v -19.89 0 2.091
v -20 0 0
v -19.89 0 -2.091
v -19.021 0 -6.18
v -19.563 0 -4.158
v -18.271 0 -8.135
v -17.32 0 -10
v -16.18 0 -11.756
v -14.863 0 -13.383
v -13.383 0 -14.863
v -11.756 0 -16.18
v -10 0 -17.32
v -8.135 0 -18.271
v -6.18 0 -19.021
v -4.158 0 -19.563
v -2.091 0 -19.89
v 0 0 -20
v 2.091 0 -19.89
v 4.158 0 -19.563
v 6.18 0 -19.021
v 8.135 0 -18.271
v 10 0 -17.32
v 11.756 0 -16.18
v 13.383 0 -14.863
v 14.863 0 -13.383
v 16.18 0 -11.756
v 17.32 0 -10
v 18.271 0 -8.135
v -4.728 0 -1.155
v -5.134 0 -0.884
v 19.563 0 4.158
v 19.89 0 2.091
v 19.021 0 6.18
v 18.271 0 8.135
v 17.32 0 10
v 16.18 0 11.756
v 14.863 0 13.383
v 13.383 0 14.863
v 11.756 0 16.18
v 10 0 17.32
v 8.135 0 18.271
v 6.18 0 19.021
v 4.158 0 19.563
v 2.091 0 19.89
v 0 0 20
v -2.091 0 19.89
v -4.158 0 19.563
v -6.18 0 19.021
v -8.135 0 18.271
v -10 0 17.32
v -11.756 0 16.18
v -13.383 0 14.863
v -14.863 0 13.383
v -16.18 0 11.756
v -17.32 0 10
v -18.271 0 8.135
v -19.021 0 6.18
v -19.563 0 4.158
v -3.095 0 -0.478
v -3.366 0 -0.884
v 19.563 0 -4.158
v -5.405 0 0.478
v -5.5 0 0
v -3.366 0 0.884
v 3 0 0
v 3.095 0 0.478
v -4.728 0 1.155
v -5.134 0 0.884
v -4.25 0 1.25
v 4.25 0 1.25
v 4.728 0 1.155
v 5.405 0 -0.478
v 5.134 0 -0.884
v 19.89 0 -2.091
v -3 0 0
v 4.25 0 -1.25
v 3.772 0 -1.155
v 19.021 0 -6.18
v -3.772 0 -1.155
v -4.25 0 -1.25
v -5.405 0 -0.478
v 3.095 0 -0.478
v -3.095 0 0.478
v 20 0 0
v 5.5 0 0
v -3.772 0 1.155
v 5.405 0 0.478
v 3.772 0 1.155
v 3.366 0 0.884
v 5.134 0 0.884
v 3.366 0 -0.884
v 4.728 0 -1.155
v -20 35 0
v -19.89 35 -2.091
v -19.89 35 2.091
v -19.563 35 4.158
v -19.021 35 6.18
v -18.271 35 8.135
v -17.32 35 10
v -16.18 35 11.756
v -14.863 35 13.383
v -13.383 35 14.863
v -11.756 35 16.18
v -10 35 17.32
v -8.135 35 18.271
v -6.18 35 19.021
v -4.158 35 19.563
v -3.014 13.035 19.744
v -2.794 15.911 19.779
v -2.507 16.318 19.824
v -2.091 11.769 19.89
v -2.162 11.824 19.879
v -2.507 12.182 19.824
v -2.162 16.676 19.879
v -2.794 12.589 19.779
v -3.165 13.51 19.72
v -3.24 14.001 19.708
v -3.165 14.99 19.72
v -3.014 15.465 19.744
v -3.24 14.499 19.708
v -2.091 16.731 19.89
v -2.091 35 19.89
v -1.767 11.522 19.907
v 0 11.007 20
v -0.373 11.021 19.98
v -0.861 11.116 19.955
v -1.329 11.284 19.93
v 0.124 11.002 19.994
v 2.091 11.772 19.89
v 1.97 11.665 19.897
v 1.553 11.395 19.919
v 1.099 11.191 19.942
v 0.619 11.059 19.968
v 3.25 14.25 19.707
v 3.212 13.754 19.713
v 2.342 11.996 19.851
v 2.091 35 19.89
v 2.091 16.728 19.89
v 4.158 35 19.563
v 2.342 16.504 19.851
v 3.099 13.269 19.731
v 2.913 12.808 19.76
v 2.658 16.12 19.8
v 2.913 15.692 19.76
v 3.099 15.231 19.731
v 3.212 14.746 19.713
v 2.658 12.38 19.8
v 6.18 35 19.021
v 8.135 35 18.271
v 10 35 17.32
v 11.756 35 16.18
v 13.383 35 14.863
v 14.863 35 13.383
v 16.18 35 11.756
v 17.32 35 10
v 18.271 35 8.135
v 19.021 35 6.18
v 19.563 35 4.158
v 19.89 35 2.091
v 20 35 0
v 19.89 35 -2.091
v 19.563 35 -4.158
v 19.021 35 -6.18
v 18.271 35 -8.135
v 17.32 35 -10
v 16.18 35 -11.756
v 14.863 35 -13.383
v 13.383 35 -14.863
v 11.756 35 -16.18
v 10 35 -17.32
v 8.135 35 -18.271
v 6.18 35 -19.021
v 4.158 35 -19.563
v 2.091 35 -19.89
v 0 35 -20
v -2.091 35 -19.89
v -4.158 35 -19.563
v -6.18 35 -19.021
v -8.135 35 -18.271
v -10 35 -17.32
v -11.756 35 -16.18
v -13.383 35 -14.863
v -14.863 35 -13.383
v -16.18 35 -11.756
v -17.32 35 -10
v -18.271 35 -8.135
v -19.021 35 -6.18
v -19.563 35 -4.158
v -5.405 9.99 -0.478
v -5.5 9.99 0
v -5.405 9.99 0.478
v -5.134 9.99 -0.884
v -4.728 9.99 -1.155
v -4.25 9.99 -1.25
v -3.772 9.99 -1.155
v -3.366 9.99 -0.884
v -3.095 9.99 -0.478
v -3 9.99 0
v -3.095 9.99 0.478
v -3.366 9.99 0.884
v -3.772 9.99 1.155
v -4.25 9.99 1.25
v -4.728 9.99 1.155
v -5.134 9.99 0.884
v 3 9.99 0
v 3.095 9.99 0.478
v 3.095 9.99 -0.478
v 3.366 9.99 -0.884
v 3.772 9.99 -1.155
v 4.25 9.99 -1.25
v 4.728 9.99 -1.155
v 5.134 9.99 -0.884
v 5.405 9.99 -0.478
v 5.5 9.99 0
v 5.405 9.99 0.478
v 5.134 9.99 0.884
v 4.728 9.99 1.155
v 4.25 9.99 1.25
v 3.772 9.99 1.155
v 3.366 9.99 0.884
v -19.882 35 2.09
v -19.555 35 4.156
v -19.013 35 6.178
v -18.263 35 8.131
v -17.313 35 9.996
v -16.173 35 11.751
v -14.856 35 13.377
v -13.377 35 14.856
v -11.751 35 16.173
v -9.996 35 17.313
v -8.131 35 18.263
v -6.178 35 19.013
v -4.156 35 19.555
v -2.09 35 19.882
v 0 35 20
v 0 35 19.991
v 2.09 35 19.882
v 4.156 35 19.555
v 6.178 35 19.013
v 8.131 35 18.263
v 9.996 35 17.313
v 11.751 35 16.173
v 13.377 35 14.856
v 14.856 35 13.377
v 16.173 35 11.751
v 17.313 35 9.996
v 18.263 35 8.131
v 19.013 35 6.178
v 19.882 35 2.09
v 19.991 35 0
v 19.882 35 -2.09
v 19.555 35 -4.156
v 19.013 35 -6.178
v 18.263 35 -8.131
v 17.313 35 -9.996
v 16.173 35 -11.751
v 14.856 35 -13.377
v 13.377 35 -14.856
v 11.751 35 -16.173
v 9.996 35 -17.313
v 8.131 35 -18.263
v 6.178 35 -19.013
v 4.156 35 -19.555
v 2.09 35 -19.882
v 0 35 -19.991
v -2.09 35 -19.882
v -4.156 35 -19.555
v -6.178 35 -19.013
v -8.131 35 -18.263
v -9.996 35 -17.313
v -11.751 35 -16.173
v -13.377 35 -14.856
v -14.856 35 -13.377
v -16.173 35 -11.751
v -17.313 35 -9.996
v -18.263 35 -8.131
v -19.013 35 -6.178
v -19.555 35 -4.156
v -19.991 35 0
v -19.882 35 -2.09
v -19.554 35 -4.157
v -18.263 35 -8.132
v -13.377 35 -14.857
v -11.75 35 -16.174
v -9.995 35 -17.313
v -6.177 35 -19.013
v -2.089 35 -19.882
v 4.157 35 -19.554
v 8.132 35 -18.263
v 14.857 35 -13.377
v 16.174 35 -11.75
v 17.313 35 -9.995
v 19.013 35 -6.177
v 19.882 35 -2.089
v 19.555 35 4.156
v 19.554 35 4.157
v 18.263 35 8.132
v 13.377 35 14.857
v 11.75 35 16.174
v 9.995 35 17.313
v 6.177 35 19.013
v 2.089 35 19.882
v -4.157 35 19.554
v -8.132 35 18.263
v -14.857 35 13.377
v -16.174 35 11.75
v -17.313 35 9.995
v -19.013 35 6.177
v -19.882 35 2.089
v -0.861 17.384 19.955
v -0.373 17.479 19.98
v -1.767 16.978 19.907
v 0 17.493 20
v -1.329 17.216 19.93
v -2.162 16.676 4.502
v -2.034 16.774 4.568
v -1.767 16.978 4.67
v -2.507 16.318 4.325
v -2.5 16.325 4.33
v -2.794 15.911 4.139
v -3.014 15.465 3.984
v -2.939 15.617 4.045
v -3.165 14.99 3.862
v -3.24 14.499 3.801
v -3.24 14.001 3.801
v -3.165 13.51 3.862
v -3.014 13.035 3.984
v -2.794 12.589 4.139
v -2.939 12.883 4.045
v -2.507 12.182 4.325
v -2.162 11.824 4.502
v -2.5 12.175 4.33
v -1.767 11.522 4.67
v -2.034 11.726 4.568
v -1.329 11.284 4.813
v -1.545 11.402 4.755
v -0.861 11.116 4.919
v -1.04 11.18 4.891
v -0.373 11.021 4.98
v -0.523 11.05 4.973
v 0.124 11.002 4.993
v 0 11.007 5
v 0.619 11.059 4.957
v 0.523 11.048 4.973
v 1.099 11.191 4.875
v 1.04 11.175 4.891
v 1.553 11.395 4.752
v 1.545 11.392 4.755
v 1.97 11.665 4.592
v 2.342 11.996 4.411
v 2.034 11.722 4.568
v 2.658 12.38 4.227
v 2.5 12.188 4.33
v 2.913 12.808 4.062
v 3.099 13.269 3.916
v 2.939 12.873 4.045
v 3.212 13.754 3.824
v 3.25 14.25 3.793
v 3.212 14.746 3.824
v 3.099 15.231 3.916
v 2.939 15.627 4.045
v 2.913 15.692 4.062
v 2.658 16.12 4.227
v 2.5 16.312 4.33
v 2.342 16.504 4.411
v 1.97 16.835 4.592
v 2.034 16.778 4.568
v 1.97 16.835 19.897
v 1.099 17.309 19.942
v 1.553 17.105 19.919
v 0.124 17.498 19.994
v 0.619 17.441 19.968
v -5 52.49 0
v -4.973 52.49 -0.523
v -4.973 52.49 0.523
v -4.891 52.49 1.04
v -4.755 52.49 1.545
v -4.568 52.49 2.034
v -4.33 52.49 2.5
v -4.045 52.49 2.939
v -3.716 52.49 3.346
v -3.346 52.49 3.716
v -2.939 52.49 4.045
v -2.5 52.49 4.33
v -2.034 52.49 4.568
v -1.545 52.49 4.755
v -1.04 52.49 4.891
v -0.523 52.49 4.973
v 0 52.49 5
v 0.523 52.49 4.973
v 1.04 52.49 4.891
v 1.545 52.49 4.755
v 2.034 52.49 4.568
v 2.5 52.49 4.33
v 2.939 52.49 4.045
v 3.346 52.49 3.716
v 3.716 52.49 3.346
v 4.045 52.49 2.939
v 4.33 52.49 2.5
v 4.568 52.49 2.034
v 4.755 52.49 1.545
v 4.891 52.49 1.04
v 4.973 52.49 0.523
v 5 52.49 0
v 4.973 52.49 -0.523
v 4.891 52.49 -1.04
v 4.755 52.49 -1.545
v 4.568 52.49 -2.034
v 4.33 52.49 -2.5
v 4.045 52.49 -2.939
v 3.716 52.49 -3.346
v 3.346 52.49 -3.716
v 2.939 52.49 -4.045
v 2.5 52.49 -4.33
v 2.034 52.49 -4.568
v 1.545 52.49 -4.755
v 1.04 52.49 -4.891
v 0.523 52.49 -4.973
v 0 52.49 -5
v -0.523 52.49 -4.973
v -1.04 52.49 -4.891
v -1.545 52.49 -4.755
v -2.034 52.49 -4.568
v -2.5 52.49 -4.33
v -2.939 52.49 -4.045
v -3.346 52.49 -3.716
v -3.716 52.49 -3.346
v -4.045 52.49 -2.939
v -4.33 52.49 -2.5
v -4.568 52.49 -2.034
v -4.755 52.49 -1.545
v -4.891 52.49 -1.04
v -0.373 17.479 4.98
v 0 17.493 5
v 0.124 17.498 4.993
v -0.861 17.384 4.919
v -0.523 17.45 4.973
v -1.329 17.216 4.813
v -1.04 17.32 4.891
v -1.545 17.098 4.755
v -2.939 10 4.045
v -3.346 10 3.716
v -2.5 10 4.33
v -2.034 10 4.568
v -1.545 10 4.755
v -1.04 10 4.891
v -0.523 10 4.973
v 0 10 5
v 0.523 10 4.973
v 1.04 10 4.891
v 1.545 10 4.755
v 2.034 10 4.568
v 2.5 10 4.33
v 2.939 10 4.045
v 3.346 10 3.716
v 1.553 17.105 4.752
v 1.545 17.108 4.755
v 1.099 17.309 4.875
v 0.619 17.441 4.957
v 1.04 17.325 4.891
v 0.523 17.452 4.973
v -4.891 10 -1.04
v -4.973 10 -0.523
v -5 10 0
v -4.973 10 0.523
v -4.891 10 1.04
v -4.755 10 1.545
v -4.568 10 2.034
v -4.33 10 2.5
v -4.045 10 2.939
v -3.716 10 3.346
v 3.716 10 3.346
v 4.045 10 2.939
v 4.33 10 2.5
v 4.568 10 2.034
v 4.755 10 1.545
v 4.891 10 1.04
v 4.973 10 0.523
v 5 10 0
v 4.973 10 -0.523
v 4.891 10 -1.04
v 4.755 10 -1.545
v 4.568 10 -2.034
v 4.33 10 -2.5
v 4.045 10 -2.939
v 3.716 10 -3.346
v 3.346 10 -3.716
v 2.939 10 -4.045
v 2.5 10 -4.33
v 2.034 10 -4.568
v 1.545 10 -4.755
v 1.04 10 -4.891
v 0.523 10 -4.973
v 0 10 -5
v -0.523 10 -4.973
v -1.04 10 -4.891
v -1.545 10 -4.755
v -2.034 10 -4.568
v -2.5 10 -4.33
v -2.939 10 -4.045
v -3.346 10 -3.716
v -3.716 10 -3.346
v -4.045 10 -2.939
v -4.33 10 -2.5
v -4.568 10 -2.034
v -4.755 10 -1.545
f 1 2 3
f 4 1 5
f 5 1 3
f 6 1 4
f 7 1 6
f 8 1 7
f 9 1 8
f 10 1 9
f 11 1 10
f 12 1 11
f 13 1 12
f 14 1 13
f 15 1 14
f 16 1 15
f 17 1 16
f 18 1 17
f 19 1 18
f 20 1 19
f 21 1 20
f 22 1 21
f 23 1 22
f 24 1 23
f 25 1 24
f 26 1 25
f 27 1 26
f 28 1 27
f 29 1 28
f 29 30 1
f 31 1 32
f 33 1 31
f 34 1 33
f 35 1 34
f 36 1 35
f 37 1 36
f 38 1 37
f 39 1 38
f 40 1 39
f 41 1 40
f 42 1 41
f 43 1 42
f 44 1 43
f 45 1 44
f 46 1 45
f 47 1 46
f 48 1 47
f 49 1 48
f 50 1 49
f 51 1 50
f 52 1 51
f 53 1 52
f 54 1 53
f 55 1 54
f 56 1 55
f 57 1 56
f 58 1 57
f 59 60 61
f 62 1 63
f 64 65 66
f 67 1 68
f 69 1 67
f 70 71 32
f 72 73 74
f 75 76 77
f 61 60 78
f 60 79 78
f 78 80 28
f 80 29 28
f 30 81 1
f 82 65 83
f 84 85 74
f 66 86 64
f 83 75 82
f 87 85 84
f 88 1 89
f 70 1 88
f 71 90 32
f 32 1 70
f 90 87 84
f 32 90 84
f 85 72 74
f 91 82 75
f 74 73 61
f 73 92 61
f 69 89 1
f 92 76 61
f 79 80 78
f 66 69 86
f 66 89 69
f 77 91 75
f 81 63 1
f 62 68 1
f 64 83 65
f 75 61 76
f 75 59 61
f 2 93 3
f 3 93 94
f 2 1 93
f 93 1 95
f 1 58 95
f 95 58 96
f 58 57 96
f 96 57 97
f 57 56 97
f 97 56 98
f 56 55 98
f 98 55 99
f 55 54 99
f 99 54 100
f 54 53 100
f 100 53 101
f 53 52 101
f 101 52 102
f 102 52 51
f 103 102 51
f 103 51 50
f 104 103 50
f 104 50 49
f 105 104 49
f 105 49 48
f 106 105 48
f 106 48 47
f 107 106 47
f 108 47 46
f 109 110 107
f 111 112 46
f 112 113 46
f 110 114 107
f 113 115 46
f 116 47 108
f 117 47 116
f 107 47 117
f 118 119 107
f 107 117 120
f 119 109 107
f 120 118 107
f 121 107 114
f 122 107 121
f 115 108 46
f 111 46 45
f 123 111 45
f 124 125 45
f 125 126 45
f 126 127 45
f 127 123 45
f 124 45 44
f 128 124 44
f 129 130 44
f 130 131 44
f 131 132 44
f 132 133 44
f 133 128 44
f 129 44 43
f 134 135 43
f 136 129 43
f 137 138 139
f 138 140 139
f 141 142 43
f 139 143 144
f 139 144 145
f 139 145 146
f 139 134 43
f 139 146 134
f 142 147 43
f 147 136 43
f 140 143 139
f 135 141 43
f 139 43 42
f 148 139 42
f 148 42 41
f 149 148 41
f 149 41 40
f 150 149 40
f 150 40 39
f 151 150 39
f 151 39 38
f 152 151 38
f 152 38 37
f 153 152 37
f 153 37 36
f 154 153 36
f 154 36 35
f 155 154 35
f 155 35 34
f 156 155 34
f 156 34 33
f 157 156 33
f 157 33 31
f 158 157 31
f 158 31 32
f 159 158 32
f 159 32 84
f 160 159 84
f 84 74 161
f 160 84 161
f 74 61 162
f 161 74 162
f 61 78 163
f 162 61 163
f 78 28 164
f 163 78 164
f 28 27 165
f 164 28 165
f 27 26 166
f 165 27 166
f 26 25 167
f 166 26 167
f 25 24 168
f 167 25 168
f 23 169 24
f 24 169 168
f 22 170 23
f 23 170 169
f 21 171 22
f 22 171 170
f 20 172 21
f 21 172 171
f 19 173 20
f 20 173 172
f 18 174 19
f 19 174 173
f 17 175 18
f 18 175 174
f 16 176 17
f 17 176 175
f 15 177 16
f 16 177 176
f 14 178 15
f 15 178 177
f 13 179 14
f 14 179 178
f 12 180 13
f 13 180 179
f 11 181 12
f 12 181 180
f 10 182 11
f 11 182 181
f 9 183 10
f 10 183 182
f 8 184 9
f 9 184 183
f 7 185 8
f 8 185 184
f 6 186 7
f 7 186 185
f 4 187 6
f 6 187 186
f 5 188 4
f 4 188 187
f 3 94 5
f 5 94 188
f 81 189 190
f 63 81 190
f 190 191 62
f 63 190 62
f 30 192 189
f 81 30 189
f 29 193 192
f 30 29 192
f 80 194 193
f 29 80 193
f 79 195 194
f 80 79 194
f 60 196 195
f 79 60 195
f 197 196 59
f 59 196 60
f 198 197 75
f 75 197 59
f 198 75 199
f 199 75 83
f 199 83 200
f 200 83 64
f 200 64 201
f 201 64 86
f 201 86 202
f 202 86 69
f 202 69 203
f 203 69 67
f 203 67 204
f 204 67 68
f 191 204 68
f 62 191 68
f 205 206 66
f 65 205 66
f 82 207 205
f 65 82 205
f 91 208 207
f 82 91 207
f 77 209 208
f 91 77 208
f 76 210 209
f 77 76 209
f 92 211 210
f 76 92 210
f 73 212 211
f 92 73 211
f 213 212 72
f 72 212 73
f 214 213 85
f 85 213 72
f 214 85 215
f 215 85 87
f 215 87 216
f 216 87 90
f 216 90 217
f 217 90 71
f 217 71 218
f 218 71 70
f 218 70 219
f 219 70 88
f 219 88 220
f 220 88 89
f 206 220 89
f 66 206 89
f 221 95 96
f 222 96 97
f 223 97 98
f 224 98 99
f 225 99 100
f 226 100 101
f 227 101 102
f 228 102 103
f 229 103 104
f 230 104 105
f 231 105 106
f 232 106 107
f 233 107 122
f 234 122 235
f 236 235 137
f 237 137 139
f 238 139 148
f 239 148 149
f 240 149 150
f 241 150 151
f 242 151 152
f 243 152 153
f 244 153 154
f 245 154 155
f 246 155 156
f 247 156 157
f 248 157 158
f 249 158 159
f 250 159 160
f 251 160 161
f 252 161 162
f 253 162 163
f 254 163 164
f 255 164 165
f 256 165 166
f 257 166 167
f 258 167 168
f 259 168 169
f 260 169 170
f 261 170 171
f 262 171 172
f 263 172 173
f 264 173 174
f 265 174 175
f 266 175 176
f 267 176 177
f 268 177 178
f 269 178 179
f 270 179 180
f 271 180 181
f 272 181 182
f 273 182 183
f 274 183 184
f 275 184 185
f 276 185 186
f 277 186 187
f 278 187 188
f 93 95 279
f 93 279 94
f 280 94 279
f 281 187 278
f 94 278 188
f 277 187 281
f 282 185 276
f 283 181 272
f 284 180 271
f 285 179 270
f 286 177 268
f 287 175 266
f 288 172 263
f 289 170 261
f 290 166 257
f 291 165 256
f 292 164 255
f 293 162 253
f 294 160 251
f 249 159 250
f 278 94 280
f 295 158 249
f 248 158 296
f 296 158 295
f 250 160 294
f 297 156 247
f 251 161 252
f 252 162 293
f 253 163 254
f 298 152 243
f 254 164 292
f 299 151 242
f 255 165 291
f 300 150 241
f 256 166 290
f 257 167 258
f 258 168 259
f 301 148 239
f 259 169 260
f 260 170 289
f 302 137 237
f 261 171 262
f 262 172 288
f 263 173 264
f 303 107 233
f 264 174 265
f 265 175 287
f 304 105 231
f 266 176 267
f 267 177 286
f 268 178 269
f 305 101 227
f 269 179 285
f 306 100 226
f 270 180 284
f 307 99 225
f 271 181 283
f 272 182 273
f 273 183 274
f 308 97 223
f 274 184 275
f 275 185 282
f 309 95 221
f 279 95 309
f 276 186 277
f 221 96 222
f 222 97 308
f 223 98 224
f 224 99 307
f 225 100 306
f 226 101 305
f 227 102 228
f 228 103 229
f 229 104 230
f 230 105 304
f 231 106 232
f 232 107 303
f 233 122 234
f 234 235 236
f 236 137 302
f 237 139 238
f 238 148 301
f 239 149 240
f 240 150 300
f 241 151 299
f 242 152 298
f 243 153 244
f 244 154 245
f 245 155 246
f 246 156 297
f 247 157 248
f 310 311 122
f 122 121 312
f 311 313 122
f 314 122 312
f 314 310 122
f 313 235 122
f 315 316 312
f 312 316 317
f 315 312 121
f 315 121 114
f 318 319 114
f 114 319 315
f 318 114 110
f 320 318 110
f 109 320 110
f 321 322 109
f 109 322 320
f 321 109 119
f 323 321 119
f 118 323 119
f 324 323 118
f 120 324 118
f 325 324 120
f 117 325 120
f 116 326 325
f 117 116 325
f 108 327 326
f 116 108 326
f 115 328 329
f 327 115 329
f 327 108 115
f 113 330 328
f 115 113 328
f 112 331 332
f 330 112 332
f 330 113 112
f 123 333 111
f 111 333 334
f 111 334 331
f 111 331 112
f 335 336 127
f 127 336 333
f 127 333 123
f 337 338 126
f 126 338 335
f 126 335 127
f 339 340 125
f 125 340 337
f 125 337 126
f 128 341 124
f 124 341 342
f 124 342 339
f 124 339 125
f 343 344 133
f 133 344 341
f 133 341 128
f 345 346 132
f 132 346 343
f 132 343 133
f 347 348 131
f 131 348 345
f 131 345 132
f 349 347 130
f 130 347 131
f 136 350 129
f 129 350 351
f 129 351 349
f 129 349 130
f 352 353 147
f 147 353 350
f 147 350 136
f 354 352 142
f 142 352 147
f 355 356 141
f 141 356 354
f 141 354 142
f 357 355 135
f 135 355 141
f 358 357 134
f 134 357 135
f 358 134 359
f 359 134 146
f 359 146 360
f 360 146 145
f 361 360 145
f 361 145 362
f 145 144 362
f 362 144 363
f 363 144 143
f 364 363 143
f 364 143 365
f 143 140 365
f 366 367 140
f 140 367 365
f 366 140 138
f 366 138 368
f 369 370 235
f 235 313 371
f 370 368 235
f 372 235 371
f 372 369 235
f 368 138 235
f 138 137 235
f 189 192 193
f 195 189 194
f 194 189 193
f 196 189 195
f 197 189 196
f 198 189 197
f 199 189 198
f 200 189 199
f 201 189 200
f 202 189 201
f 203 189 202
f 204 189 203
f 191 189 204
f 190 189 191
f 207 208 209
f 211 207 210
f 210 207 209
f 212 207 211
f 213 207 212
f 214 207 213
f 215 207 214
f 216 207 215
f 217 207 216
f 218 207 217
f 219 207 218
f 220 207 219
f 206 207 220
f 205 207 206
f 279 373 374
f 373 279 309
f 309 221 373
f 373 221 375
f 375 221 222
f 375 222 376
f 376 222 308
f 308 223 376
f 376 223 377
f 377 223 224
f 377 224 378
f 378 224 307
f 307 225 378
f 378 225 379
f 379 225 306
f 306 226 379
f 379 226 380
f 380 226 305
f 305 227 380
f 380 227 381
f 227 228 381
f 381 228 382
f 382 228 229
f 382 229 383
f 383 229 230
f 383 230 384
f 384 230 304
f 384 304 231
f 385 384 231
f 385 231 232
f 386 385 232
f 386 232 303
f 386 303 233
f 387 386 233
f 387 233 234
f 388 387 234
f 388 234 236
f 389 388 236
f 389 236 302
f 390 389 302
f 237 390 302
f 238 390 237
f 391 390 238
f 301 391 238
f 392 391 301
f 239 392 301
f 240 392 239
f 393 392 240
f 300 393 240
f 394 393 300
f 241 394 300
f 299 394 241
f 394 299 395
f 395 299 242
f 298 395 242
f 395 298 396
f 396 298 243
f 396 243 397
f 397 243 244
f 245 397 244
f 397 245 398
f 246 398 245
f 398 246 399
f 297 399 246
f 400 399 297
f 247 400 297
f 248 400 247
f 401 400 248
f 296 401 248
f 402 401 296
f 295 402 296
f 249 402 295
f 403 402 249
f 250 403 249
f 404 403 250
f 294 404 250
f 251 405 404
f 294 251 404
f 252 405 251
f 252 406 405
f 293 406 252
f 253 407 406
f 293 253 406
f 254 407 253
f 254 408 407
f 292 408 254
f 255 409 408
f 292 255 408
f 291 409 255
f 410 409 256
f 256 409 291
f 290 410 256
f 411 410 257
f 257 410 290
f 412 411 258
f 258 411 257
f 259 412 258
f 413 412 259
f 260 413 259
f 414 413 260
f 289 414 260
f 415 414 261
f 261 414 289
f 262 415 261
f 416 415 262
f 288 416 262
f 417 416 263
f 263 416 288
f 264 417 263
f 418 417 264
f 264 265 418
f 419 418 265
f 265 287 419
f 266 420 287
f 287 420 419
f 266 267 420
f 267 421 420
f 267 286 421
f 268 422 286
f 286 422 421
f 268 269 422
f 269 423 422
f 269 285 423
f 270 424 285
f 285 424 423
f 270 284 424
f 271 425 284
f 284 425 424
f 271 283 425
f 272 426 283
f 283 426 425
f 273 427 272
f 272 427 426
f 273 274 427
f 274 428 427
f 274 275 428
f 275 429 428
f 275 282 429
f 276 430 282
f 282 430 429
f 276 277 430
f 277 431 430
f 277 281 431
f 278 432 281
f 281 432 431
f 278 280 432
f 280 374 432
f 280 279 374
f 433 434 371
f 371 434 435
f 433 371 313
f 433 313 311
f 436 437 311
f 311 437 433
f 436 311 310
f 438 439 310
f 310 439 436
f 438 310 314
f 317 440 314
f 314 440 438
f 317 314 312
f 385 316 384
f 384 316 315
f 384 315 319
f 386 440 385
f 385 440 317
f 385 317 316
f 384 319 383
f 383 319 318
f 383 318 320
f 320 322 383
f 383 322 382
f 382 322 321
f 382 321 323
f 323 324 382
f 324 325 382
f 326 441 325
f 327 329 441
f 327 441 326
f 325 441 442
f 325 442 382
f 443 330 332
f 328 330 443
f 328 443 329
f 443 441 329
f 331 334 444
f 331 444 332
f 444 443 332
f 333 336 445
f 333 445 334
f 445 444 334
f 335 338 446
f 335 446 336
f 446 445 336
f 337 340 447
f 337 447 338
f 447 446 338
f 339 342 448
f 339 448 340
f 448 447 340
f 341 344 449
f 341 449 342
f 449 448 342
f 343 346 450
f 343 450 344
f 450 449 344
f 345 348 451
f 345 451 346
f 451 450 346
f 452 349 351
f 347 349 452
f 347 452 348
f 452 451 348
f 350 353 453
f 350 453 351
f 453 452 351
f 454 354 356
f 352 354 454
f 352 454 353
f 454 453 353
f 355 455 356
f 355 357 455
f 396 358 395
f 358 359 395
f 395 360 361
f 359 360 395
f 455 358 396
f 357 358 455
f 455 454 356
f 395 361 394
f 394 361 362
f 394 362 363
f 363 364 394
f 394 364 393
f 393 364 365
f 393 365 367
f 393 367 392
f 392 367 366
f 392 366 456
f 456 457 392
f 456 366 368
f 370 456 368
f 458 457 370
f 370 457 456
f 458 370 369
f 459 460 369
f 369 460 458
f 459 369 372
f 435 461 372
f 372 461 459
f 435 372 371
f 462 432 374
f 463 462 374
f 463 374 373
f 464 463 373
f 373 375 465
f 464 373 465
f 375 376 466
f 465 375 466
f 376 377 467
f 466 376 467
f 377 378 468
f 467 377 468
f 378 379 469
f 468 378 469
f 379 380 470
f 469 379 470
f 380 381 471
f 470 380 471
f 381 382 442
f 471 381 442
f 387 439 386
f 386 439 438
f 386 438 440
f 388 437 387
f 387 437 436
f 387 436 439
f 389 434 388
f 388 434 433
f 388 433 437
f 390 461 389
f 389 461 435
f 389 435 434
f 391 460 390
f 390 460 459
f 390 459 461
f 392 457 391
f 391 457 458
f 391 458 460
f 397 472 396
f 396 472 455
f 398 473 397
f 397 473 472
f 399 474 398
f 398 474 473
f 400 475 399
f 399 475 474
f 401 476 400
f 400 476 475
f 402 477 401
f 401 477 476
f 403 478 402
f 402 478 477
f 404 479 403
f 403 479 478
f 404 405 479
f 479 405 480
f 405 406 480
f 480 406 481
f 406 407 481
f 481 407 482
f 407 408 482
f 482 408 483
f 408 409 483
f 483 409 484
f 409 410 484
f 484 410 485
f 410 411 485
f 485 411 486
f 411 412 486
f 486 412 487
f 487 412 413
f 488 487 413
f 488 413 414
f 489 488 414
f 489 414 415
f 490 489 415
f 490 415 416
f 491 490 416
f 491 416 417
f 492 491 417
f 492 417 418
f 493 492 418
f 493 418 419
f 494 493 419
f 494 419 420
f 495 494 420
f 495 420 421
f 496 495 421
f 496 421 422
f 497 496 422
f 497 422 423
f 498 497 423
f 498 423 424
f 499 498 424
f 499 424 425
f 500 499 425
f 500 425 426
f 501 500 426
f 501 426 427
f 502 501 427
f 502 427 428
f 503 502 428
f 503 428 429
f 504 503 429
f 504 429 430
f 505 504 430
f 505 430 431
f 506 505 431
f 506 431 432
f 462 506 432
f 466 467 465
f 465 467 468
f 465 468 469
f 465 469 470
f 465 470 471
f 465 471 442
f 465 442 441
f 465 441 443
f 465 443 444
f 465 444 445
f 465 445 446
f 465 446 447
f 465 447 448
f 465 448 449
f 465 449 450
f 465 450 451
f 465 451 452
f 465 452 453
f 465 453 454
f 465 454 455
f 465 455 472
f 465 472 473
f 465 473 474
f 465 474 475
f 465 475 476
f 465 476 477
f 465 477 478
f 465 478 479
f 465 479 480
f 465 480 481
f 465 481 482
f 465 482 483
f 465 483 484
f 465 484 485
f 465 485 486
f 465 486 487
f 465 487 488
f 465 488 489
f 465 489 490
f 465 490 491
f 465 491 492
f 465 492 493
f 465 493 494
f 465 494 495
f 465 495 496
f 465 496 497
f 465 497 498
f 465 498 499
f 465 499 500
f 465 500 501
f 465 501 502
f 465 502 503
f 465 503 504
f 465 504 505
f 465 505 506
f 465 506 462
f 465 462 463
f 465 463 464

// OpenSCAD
module lampfoot 
    ( h = 35, r = 20
    , ri = 5, rk = 6.5/2, hk = 14.25, hkb = 10
    , sr = 2.5 / 2, sd = 10, sc = 8.5 / 2
    )
{
    difference () {
        union () {
            cylinder (h = h, r = r);
            translate ([0, 0, h - 0.01])
                cylinder (h = h / 2, r1 = r, r2 = ri);
        }
        translate ([0, 0, hkb])
            cylinder (4 * h, r = ri);
        translate ([0, 0, hk])
            rotate ([90, 0, 0])
                cylinder (h = r * 1.5, r = rk);
        translate ([ sc, 0, -.01])
            cylinder (r = sr, h = sd);
        translate ([-sc, 0, -.01])
            cylinder (r = sr, h = sd);
    }
}

rotate ([-90, 0, 0])
    lampfoot ($fa = 6, $fs = .5);
